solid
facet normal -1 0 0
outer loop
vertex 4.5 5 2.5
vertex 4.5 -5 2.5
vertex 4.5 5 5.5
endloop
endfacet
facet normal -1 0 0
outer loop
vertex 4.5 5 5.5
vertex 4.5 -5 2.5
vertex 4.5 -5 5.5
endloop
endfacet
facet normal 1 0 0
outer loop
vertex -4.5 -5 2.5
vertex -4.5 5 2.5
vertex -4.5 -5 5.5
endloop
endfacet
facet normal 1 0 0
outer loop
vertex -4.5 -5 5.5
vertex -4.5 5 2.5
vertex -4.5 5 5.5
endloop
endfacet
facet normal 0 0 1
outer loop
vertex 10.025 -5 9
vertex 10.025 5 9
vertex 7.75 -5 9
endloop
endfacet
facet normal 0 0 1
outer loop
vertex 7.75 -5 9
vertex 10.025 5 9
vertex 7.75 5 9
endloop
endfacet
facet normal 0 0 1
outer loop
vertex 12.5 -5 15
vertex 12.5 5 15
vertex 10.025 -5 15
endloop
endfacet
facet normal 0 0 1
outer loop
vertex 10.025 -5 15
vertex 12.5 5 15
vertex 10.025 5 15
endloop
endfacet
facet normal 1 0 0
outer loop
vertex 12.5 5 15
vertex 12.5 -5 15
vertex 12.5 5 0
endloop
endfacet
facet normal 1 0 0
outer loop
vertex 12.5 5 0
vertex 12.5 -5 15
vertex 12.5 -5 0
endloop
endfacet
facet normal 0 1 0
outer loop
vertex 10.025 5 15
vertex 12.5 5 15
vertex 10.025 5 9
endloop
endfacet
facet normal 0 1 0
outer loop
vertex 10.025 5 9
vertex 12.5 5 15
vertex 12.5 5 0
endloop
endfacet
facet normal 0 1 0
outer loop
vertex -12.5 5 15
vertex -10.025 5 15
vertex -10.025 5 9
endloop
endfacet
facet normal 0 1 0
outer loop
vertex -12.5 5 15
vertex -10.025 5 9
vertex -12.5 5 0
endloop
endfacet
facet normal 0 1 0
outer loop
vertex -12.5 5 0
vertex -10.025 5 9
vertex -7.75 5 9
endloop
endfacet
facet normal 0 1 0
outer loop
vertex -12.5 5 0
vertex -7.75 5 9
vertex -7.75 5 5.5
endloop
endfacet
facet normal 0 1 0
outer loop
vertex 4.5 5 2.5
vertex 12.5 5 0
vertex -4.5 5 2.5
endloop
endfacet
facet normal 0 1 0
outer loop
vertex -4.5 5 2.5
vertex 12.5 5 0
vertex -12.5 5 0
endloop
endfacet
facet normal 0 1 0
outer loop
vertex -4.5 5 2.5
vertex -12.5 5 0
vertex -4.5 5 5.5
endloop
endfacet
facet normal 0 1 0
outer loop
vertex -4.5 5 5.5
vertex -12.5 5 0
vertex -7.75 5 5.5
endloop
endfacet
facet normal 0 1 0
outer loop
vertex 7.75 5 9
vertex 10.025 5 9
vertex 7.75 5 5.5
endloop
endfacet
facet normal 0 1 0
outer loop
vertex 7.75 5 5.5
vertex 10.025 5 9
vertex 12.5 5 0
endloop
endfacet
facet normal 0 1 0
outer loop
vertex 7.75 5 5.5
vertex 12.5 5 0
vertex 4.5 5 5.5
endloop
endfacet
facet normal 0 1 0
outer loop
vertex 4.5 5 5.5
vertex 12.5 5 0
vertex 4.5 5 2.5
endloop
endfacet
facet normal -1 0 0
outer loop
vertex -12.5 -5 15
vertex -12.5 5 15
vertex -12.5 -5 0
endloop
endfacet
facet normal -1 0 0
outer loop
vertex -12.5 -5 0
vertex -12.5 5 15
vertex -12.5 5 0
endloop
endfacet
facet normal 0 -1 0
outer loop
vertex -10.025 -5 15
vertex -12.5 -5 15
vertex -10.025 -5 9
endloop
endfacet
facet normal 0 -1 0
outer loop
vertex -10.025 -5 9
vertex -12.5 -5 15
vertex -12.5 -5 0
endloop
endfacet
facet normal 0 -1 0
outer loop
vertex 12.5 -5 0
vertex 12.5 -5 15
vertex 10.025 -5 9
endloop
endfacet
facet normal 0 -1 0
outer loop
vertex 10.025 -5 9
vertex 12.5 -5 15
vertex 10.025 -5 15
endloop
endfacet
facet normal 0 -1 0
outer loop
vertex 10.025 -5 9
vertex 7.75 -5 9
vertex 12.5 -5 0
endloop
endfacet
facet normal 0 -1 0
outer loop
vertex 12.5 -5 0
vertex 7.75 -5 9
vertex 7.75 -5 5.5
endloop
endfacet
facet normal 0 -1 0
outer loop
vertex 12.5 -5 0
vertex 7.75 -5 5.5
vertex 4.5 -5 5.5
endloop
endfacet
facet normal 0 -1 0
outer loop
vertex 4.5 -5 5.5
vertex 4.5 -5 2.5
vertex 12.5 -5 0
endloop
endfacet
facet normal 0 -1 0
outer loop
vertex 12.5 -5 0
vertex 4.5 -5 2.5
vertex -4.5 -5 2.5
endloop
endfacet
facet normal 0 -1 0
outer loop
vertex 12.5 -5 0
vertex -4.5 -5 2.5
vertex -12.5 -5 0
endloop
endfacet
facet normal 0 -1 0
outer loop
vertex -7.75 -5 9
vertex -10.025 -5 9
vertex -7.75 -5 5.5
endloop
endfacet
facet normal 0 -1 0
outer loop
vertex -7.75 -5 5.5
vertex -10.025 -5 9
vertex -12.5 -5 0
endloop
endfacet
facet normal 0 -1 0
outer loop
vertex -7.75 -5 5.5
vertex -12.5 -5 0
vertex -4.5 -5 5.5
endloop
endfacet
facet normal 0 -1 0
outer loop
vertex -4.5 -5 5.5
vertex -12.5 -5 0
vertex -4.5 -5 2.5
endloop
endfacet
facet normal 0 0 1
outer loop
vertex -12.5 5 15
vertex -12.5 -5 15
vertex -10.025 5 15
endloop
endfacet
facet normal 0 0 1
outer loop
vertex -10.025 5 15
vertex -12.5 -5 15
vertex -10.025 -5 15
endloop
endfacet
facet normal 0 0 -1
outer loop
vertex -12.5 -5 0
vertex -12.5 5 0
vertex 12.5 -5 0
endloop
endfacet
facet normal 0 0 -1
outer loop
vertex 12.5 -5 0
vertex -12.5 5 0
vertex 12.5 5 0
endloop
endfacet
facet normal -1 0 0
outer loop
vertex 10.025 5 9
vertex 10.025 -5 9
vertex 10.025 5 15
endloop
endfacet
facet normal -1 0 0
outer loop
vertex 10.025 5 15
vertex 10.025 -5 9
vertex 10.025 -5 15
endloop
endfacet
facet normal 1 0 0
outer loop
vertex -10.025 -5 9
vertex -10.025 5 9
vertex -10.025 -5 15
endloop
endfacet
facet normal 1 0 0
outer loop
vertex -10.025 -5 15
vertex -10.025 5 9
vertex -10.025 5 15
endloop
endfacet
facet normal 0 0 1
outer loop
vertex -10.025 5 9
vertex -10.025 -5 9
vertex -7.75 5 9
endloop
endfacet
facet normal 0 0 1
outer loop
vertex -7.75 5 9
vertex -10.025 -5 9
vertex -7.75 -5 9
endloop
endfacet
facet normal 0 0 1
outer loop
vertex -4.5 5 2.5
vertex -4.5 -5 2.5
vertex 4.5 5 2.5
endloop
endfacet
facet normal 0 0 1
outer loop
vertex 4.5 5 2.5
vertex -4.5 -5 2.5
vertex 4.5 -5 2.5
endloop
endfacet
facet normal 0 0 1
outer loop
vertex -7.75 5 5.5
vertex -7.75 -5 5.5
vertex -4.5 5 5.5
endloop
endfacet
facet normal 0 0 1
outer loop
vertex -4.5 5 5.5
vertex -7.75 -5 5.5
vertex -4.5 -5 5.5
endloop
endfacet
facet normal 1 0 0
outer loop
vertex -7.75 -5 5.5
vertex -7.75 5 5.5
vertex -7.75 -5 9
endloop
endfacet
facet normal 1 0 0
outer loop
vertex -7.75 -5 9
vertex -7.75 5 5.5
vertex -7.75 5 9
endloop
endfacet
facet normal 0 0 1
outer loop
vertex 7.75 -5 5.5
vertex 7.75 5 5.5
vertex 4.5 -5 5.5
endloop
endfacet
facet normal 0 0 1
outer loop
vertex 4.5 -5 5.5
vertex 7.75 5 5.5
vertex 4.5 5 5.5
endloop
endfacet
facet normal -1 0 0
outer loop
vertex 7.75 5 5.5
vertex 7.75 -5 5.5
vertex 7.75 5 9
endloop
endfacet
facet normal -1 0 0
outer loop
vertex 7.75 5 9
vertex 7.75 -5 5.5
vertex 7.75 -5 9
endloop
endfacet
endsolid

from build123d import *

# Parameters (mm, degrees)
SKETCH1_W           = 25
SKETCH1_H           = 10
BOSS_EXTRUDE1_DEPTH = 15
SKETCH2_W           = 20.05
SKETCH2_H           = 10
CUT_EXTRUDE1_DEPTH  = 6
SKETCH3_W           = 9
SKETCH3_H           = 10
CUT_EXTRUDE2_DEPTH  = 6.5
SKETCH4_W           = 15.5
SKETCH4_H           = 10
CUT_EXTRUDE3_DEPTH  = 3.5


with BuildPart() as part:
    # Sketch1 → Boss-Extrude1 (new body)
    with BuildSketch(Plane.XY):
        Rectangle(SKETCH1_W, SKETCH1_H)
    extrude(amount=BOSS_EXTRUDE1_DEPTH)

    # Sketch2 → Cut-Extrude1 (cut)
    with BuildSketch(Plane.XY.offset(15)):
        Rectangle(SKETCH2_W, SKETCH2_H)
    extrude(amount=-CUT_EXTRUDE1_DEPTH, mode=Mode.SUBTRACT)

    # Sketch3 → Cut-Extrude2 (cut)
    with BuildSketch(Plane.XY.offset(9)):
        Rectangle(SKETCH3_W, SKETCH3_H)
    extrude(amount=-CUT_EXTRUDE2_DEPTH, mode=Mode.SUBTRACT)

    # Sketch4 → Cut-Extrude3 (cut)
    with BuildSketch(Plane.XY.offset(9)):
        Rectangle(SKETCH4_W, SKETCH4_H)
    extrude(amount=-CUT_EXTRUDE3_DEPTH, mode=Mode.SUBTRACT)


solid = part.part
